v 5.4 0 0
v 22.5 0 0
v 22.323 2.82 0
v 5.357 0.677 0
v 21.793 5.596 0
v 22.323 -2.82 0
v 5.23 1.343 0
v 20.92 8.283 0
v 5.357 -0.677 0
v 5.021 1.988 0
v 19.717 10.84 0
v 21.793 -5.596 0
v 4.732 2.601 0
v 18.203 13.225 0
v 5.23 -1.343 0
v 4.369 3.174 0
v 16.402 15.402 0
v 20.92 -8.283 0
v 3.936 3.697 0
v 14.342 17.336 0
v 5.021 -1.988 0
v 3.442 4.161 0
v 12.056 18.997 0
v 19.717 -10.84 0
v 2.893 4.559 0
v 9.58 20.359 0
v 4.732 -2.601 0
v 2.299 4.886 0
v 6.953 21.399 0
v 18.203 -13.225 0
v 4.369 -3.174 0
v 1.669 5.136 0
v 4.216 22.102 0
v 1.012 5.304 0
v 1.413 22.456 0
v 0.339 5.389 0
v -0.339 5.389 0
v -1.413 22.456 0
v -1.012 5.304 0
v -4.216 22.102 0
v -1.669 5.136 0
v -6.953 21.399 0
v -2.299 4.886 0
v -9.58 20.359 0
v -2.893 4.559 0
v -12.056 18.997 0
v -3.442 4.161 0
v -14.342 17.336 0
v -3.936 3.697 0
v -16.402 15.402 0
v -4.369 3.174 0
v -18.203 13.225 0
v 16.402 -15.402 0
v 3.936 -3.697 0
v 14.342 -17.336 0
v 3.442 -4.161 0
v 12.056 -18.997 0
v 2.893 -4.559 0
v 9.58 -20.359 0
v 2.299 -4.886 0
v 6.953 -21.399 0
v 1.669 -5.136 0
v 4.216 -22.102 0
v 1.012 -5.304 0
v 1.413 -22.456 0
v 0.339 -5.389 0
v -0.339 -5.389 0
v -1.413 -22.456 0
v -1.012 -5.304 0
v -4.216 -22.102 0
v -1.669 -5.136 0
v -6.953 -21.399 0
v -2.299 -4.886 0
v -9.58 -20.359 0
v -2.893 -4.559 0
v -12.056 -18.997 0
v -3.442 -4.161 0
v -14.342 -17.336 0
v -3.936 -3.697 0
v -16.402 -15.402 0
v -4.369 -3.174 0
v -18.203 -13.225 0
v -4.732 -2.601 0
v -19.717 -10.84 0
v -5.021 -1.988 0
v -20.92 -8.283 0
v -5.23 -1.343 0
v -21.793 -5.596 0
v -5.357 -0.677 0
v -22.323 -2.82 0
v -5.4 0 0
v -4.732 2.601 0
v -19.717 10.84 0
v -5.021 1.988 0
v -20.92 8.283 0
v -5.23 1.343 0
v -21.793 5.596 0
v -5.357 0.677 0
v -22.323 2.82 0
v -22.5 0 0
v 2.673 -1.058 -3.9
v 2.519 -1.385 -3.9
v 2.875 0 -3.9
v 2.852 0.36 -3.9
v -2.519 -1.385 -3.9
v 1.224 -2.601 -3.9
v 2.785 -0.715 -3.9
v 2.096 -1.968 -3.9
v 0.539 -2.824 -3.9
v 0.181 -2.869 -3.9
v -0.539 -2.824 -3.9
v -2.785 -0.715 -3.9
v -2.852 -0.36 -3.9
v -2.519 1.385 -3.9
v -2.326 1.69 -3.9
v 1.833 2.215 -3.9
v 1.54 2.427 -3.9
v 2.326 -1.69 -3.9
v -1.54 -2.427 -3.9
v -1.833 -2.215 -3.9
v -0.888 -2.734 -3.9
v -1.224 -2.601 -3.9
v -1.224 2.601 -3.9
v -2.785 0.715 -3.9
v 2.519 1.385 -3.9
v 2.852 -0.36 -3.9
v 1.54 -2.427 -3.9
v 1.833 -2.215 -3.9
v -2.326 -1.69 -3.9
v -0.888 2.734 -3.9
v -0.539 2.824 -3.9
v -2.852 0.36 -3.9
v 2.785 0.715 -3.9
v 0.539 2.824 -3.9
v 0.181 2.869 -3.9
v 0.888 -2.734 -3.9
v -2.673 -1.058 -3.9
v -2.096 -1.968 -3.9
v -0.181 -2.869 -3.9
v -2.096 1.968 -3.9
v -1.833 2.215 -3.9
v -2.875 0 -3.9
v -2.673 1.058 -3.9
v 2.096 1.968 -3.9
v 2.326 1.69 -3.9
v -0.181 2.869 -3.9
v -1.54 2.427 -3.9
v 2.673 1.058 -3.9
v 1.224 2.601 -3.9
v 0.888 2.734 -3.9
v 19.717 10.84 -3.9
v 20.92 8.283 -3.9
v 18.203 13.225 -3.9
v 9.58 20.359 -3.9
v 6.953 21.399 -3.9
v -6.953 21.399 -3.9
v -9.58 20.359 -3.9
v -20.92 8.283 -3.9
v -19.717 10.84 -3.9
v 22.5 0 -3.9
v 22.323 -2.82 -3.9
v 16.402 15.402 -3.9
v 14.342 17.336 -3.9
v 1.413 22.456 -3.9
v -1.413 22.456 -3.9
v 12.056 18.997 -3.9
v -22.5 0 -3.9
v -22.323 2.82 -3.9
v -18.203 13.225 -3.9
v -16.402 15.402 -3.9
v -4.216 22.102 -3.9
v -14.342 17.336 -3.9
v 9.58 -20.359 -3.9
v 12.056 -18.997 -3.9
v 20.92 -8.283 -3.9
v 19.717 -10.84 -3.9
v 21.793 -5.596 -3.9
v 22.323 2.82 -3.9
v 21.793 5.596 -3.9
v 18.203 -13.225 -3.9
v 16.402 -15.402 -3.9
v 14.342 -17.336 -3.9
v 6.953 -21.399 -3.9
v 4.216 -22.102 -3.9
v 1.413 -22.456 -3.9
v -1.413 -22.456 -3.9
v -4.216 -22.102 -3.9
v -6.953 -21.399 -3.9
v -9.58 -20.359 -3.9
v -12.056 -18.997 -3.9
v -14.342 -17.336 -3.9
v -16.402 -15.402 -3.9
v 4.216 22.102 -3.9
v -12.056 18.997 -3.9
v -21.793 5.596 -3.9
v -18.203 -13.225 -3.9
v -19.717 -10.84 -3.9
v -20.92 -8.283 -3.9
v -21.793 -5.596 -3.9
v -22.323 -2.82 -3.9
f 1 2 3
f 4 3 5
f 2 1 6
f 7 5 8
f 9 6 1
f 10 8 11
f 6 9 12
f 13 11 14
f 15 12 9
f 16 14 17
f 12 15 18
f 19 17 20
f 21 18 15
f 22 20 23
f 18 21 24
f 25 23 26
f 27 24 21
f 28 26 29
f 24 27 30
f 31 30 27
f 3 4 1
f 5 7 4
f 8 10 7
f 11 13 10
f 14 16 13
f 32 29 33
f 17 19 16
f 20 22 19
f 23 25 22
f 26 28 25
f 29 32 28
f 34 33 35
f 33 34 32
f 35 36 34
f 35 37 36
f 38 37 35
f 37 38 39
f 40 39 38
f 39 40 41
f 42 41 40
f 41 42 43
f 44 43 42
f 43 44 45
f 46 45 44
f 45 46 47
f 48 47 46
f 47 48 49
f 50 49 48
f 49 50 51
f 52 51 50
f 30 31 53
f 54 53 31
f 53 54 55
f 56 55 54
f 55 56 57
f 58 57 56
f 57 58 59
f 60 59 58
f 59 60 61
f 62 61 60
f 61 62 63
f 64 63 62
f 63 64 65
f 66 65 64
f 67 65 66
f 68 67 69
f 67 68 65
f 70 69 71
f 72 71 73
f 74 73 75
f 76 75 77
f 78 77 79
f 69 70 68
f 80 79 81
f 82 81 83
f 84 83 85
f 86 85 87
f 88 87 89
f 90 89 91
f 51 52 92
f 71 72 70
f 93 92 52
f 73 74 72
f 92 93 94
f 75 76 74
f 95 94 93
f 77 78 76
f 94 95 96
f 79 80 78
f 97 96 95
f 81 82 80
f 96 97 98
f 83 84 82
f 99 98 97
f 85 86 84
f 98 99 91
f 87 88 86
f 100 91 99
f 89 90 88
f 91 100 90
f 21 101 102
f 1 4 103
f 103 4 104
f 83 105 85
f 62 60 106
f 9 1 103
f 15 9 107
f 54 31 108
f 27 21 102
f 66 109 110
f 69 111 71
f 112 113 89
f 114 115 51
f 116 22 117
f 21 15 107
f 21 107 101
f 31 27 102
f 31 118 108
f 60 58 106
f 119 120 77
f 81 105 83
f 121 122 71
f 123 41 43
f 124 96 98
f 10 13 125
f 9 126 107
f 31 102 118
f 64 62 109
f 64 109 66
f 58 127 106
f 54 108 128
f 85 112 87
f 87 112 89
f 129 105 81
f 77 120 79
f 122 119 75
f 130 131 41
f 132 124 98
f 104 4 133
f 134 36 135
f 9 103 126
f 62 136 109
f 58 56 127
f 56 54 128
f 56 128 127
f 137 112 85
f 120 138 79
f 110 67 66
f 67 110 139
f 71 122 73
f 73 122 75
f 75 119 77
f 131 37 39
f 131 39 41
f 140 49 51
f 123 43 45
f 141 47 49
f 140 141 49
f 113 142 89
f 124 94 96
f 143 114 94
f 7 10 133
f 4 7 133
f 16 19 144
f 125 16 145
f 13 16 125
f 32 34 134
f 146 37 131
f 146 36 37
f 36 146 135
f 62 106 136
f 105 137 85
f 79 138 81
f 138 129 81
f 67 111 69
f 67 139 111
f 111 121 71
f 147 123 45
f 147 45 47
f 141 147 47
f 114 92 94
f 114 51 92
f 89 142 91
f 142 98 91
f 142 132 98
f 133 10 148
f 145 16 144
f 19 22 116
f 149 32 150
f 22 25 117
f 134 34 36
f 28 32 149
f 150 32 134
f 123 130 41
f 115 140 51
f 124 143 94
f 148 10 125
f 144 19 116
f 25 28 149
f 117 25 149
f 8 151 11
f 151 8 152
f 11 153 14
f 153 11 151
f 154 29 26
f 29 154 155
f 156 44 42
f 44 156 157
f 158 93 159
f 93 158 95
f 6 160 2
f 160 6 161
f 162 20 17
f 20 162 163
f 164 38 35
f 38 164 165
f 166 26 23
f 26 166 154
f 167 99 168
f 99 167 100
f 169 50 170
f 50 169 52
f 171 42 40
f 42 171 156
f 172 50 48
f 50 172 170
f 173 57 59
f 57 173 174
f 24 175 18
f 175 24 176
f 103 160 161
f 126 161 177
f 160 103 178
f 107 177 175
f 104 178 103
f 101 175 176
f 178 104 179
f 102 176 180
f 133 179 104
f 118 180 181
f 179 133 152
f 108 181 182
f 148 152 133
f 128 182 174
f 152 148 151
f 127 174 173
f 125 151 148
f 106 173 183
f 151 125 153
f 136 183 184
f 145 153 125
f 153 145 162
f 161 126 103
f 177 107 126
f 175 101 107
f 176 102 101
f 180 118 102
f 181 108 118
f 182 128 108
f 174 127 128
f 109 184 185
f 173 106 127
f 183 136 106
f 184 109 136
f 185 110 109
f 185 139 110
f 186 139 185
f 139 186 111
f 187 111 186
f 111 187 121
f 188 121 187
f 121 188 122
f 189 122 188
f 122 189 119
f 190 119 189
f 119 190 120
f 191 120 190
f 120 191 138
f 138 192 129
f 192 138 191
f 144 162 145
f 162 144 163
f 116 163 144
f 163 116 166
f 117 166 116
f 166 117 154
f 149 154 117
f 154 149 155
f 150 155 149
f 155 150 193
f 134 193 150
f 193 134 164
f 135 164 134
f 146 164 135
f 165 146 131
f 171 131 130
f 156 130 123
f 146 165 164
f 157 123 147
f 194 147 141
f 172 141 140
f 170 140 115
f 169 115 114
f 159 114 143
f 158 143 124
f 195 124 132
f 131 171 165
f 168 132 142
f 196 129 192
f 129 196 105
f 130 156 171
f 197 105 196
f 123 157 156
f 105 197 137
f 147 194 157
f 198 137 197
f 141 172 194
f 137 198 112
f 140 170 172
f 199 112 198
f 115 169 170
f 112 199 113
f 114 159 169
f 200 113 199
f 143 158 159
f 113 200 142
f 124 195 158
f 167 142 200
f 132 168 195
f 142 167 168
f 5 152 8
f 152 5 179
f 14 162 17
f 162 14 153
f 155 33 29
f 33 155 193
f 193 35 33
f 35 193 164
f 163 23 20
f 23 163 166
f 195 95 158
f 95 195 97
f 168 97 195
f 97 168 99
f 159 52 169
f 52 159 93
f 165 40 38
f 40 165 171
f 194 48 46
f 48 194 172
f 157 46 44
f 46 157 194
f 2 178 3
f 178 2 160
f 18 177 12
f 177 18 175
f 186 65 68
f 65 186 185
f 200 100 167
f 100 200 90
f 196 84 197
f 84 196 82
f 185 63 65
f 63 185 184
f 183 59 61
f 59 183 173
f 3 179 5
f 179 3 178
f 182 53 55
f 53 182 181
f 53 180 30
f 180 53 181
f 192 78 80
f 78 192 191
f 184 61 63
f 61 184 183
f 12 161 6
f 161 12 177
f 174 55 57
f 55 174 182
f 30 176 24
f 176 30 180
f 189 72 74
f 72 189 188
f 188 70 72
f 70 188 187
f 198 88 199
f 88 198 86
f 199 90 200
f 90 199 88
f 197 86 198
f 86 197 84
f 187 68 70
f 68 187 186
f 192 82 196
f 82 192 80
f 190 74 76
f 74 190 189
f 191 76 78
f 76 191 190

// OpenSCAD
$fn = 50;


difference() {
	union() {
		translate(v = [0, 0, -3.9000000000]) {
			cylinder(h = 3.9000000000, r = 22.5000000000);
		}
	}
	union() {
		translate(v = [0, 0, 0]) {
			rotate(a = [0, 0, 0]) {
				difference() {
					union() {
						translate(v = [0, 0, -6.9000000000]) {
							cylinder(h = 6.9000000000, r = 2.6000000000);
						}
						translate(v = [0, 0, -3.9000000000]) {
							cylinder(h = 3.9000000000, r1 = 2.8750000000, r2 = 5.4000000000);
						}
						translate(v = [0, 0, -6.9000000000]) {
							cylinder(h = 6.9000000000, r = 2.8750000000);
						}
						translate(v = [0, 0, -6.9000000000]) {
							cylinder(h = 6.9000000000, r = 2.6000000000);
						}
					}
					union();
				}
			}
		}
	}
}
